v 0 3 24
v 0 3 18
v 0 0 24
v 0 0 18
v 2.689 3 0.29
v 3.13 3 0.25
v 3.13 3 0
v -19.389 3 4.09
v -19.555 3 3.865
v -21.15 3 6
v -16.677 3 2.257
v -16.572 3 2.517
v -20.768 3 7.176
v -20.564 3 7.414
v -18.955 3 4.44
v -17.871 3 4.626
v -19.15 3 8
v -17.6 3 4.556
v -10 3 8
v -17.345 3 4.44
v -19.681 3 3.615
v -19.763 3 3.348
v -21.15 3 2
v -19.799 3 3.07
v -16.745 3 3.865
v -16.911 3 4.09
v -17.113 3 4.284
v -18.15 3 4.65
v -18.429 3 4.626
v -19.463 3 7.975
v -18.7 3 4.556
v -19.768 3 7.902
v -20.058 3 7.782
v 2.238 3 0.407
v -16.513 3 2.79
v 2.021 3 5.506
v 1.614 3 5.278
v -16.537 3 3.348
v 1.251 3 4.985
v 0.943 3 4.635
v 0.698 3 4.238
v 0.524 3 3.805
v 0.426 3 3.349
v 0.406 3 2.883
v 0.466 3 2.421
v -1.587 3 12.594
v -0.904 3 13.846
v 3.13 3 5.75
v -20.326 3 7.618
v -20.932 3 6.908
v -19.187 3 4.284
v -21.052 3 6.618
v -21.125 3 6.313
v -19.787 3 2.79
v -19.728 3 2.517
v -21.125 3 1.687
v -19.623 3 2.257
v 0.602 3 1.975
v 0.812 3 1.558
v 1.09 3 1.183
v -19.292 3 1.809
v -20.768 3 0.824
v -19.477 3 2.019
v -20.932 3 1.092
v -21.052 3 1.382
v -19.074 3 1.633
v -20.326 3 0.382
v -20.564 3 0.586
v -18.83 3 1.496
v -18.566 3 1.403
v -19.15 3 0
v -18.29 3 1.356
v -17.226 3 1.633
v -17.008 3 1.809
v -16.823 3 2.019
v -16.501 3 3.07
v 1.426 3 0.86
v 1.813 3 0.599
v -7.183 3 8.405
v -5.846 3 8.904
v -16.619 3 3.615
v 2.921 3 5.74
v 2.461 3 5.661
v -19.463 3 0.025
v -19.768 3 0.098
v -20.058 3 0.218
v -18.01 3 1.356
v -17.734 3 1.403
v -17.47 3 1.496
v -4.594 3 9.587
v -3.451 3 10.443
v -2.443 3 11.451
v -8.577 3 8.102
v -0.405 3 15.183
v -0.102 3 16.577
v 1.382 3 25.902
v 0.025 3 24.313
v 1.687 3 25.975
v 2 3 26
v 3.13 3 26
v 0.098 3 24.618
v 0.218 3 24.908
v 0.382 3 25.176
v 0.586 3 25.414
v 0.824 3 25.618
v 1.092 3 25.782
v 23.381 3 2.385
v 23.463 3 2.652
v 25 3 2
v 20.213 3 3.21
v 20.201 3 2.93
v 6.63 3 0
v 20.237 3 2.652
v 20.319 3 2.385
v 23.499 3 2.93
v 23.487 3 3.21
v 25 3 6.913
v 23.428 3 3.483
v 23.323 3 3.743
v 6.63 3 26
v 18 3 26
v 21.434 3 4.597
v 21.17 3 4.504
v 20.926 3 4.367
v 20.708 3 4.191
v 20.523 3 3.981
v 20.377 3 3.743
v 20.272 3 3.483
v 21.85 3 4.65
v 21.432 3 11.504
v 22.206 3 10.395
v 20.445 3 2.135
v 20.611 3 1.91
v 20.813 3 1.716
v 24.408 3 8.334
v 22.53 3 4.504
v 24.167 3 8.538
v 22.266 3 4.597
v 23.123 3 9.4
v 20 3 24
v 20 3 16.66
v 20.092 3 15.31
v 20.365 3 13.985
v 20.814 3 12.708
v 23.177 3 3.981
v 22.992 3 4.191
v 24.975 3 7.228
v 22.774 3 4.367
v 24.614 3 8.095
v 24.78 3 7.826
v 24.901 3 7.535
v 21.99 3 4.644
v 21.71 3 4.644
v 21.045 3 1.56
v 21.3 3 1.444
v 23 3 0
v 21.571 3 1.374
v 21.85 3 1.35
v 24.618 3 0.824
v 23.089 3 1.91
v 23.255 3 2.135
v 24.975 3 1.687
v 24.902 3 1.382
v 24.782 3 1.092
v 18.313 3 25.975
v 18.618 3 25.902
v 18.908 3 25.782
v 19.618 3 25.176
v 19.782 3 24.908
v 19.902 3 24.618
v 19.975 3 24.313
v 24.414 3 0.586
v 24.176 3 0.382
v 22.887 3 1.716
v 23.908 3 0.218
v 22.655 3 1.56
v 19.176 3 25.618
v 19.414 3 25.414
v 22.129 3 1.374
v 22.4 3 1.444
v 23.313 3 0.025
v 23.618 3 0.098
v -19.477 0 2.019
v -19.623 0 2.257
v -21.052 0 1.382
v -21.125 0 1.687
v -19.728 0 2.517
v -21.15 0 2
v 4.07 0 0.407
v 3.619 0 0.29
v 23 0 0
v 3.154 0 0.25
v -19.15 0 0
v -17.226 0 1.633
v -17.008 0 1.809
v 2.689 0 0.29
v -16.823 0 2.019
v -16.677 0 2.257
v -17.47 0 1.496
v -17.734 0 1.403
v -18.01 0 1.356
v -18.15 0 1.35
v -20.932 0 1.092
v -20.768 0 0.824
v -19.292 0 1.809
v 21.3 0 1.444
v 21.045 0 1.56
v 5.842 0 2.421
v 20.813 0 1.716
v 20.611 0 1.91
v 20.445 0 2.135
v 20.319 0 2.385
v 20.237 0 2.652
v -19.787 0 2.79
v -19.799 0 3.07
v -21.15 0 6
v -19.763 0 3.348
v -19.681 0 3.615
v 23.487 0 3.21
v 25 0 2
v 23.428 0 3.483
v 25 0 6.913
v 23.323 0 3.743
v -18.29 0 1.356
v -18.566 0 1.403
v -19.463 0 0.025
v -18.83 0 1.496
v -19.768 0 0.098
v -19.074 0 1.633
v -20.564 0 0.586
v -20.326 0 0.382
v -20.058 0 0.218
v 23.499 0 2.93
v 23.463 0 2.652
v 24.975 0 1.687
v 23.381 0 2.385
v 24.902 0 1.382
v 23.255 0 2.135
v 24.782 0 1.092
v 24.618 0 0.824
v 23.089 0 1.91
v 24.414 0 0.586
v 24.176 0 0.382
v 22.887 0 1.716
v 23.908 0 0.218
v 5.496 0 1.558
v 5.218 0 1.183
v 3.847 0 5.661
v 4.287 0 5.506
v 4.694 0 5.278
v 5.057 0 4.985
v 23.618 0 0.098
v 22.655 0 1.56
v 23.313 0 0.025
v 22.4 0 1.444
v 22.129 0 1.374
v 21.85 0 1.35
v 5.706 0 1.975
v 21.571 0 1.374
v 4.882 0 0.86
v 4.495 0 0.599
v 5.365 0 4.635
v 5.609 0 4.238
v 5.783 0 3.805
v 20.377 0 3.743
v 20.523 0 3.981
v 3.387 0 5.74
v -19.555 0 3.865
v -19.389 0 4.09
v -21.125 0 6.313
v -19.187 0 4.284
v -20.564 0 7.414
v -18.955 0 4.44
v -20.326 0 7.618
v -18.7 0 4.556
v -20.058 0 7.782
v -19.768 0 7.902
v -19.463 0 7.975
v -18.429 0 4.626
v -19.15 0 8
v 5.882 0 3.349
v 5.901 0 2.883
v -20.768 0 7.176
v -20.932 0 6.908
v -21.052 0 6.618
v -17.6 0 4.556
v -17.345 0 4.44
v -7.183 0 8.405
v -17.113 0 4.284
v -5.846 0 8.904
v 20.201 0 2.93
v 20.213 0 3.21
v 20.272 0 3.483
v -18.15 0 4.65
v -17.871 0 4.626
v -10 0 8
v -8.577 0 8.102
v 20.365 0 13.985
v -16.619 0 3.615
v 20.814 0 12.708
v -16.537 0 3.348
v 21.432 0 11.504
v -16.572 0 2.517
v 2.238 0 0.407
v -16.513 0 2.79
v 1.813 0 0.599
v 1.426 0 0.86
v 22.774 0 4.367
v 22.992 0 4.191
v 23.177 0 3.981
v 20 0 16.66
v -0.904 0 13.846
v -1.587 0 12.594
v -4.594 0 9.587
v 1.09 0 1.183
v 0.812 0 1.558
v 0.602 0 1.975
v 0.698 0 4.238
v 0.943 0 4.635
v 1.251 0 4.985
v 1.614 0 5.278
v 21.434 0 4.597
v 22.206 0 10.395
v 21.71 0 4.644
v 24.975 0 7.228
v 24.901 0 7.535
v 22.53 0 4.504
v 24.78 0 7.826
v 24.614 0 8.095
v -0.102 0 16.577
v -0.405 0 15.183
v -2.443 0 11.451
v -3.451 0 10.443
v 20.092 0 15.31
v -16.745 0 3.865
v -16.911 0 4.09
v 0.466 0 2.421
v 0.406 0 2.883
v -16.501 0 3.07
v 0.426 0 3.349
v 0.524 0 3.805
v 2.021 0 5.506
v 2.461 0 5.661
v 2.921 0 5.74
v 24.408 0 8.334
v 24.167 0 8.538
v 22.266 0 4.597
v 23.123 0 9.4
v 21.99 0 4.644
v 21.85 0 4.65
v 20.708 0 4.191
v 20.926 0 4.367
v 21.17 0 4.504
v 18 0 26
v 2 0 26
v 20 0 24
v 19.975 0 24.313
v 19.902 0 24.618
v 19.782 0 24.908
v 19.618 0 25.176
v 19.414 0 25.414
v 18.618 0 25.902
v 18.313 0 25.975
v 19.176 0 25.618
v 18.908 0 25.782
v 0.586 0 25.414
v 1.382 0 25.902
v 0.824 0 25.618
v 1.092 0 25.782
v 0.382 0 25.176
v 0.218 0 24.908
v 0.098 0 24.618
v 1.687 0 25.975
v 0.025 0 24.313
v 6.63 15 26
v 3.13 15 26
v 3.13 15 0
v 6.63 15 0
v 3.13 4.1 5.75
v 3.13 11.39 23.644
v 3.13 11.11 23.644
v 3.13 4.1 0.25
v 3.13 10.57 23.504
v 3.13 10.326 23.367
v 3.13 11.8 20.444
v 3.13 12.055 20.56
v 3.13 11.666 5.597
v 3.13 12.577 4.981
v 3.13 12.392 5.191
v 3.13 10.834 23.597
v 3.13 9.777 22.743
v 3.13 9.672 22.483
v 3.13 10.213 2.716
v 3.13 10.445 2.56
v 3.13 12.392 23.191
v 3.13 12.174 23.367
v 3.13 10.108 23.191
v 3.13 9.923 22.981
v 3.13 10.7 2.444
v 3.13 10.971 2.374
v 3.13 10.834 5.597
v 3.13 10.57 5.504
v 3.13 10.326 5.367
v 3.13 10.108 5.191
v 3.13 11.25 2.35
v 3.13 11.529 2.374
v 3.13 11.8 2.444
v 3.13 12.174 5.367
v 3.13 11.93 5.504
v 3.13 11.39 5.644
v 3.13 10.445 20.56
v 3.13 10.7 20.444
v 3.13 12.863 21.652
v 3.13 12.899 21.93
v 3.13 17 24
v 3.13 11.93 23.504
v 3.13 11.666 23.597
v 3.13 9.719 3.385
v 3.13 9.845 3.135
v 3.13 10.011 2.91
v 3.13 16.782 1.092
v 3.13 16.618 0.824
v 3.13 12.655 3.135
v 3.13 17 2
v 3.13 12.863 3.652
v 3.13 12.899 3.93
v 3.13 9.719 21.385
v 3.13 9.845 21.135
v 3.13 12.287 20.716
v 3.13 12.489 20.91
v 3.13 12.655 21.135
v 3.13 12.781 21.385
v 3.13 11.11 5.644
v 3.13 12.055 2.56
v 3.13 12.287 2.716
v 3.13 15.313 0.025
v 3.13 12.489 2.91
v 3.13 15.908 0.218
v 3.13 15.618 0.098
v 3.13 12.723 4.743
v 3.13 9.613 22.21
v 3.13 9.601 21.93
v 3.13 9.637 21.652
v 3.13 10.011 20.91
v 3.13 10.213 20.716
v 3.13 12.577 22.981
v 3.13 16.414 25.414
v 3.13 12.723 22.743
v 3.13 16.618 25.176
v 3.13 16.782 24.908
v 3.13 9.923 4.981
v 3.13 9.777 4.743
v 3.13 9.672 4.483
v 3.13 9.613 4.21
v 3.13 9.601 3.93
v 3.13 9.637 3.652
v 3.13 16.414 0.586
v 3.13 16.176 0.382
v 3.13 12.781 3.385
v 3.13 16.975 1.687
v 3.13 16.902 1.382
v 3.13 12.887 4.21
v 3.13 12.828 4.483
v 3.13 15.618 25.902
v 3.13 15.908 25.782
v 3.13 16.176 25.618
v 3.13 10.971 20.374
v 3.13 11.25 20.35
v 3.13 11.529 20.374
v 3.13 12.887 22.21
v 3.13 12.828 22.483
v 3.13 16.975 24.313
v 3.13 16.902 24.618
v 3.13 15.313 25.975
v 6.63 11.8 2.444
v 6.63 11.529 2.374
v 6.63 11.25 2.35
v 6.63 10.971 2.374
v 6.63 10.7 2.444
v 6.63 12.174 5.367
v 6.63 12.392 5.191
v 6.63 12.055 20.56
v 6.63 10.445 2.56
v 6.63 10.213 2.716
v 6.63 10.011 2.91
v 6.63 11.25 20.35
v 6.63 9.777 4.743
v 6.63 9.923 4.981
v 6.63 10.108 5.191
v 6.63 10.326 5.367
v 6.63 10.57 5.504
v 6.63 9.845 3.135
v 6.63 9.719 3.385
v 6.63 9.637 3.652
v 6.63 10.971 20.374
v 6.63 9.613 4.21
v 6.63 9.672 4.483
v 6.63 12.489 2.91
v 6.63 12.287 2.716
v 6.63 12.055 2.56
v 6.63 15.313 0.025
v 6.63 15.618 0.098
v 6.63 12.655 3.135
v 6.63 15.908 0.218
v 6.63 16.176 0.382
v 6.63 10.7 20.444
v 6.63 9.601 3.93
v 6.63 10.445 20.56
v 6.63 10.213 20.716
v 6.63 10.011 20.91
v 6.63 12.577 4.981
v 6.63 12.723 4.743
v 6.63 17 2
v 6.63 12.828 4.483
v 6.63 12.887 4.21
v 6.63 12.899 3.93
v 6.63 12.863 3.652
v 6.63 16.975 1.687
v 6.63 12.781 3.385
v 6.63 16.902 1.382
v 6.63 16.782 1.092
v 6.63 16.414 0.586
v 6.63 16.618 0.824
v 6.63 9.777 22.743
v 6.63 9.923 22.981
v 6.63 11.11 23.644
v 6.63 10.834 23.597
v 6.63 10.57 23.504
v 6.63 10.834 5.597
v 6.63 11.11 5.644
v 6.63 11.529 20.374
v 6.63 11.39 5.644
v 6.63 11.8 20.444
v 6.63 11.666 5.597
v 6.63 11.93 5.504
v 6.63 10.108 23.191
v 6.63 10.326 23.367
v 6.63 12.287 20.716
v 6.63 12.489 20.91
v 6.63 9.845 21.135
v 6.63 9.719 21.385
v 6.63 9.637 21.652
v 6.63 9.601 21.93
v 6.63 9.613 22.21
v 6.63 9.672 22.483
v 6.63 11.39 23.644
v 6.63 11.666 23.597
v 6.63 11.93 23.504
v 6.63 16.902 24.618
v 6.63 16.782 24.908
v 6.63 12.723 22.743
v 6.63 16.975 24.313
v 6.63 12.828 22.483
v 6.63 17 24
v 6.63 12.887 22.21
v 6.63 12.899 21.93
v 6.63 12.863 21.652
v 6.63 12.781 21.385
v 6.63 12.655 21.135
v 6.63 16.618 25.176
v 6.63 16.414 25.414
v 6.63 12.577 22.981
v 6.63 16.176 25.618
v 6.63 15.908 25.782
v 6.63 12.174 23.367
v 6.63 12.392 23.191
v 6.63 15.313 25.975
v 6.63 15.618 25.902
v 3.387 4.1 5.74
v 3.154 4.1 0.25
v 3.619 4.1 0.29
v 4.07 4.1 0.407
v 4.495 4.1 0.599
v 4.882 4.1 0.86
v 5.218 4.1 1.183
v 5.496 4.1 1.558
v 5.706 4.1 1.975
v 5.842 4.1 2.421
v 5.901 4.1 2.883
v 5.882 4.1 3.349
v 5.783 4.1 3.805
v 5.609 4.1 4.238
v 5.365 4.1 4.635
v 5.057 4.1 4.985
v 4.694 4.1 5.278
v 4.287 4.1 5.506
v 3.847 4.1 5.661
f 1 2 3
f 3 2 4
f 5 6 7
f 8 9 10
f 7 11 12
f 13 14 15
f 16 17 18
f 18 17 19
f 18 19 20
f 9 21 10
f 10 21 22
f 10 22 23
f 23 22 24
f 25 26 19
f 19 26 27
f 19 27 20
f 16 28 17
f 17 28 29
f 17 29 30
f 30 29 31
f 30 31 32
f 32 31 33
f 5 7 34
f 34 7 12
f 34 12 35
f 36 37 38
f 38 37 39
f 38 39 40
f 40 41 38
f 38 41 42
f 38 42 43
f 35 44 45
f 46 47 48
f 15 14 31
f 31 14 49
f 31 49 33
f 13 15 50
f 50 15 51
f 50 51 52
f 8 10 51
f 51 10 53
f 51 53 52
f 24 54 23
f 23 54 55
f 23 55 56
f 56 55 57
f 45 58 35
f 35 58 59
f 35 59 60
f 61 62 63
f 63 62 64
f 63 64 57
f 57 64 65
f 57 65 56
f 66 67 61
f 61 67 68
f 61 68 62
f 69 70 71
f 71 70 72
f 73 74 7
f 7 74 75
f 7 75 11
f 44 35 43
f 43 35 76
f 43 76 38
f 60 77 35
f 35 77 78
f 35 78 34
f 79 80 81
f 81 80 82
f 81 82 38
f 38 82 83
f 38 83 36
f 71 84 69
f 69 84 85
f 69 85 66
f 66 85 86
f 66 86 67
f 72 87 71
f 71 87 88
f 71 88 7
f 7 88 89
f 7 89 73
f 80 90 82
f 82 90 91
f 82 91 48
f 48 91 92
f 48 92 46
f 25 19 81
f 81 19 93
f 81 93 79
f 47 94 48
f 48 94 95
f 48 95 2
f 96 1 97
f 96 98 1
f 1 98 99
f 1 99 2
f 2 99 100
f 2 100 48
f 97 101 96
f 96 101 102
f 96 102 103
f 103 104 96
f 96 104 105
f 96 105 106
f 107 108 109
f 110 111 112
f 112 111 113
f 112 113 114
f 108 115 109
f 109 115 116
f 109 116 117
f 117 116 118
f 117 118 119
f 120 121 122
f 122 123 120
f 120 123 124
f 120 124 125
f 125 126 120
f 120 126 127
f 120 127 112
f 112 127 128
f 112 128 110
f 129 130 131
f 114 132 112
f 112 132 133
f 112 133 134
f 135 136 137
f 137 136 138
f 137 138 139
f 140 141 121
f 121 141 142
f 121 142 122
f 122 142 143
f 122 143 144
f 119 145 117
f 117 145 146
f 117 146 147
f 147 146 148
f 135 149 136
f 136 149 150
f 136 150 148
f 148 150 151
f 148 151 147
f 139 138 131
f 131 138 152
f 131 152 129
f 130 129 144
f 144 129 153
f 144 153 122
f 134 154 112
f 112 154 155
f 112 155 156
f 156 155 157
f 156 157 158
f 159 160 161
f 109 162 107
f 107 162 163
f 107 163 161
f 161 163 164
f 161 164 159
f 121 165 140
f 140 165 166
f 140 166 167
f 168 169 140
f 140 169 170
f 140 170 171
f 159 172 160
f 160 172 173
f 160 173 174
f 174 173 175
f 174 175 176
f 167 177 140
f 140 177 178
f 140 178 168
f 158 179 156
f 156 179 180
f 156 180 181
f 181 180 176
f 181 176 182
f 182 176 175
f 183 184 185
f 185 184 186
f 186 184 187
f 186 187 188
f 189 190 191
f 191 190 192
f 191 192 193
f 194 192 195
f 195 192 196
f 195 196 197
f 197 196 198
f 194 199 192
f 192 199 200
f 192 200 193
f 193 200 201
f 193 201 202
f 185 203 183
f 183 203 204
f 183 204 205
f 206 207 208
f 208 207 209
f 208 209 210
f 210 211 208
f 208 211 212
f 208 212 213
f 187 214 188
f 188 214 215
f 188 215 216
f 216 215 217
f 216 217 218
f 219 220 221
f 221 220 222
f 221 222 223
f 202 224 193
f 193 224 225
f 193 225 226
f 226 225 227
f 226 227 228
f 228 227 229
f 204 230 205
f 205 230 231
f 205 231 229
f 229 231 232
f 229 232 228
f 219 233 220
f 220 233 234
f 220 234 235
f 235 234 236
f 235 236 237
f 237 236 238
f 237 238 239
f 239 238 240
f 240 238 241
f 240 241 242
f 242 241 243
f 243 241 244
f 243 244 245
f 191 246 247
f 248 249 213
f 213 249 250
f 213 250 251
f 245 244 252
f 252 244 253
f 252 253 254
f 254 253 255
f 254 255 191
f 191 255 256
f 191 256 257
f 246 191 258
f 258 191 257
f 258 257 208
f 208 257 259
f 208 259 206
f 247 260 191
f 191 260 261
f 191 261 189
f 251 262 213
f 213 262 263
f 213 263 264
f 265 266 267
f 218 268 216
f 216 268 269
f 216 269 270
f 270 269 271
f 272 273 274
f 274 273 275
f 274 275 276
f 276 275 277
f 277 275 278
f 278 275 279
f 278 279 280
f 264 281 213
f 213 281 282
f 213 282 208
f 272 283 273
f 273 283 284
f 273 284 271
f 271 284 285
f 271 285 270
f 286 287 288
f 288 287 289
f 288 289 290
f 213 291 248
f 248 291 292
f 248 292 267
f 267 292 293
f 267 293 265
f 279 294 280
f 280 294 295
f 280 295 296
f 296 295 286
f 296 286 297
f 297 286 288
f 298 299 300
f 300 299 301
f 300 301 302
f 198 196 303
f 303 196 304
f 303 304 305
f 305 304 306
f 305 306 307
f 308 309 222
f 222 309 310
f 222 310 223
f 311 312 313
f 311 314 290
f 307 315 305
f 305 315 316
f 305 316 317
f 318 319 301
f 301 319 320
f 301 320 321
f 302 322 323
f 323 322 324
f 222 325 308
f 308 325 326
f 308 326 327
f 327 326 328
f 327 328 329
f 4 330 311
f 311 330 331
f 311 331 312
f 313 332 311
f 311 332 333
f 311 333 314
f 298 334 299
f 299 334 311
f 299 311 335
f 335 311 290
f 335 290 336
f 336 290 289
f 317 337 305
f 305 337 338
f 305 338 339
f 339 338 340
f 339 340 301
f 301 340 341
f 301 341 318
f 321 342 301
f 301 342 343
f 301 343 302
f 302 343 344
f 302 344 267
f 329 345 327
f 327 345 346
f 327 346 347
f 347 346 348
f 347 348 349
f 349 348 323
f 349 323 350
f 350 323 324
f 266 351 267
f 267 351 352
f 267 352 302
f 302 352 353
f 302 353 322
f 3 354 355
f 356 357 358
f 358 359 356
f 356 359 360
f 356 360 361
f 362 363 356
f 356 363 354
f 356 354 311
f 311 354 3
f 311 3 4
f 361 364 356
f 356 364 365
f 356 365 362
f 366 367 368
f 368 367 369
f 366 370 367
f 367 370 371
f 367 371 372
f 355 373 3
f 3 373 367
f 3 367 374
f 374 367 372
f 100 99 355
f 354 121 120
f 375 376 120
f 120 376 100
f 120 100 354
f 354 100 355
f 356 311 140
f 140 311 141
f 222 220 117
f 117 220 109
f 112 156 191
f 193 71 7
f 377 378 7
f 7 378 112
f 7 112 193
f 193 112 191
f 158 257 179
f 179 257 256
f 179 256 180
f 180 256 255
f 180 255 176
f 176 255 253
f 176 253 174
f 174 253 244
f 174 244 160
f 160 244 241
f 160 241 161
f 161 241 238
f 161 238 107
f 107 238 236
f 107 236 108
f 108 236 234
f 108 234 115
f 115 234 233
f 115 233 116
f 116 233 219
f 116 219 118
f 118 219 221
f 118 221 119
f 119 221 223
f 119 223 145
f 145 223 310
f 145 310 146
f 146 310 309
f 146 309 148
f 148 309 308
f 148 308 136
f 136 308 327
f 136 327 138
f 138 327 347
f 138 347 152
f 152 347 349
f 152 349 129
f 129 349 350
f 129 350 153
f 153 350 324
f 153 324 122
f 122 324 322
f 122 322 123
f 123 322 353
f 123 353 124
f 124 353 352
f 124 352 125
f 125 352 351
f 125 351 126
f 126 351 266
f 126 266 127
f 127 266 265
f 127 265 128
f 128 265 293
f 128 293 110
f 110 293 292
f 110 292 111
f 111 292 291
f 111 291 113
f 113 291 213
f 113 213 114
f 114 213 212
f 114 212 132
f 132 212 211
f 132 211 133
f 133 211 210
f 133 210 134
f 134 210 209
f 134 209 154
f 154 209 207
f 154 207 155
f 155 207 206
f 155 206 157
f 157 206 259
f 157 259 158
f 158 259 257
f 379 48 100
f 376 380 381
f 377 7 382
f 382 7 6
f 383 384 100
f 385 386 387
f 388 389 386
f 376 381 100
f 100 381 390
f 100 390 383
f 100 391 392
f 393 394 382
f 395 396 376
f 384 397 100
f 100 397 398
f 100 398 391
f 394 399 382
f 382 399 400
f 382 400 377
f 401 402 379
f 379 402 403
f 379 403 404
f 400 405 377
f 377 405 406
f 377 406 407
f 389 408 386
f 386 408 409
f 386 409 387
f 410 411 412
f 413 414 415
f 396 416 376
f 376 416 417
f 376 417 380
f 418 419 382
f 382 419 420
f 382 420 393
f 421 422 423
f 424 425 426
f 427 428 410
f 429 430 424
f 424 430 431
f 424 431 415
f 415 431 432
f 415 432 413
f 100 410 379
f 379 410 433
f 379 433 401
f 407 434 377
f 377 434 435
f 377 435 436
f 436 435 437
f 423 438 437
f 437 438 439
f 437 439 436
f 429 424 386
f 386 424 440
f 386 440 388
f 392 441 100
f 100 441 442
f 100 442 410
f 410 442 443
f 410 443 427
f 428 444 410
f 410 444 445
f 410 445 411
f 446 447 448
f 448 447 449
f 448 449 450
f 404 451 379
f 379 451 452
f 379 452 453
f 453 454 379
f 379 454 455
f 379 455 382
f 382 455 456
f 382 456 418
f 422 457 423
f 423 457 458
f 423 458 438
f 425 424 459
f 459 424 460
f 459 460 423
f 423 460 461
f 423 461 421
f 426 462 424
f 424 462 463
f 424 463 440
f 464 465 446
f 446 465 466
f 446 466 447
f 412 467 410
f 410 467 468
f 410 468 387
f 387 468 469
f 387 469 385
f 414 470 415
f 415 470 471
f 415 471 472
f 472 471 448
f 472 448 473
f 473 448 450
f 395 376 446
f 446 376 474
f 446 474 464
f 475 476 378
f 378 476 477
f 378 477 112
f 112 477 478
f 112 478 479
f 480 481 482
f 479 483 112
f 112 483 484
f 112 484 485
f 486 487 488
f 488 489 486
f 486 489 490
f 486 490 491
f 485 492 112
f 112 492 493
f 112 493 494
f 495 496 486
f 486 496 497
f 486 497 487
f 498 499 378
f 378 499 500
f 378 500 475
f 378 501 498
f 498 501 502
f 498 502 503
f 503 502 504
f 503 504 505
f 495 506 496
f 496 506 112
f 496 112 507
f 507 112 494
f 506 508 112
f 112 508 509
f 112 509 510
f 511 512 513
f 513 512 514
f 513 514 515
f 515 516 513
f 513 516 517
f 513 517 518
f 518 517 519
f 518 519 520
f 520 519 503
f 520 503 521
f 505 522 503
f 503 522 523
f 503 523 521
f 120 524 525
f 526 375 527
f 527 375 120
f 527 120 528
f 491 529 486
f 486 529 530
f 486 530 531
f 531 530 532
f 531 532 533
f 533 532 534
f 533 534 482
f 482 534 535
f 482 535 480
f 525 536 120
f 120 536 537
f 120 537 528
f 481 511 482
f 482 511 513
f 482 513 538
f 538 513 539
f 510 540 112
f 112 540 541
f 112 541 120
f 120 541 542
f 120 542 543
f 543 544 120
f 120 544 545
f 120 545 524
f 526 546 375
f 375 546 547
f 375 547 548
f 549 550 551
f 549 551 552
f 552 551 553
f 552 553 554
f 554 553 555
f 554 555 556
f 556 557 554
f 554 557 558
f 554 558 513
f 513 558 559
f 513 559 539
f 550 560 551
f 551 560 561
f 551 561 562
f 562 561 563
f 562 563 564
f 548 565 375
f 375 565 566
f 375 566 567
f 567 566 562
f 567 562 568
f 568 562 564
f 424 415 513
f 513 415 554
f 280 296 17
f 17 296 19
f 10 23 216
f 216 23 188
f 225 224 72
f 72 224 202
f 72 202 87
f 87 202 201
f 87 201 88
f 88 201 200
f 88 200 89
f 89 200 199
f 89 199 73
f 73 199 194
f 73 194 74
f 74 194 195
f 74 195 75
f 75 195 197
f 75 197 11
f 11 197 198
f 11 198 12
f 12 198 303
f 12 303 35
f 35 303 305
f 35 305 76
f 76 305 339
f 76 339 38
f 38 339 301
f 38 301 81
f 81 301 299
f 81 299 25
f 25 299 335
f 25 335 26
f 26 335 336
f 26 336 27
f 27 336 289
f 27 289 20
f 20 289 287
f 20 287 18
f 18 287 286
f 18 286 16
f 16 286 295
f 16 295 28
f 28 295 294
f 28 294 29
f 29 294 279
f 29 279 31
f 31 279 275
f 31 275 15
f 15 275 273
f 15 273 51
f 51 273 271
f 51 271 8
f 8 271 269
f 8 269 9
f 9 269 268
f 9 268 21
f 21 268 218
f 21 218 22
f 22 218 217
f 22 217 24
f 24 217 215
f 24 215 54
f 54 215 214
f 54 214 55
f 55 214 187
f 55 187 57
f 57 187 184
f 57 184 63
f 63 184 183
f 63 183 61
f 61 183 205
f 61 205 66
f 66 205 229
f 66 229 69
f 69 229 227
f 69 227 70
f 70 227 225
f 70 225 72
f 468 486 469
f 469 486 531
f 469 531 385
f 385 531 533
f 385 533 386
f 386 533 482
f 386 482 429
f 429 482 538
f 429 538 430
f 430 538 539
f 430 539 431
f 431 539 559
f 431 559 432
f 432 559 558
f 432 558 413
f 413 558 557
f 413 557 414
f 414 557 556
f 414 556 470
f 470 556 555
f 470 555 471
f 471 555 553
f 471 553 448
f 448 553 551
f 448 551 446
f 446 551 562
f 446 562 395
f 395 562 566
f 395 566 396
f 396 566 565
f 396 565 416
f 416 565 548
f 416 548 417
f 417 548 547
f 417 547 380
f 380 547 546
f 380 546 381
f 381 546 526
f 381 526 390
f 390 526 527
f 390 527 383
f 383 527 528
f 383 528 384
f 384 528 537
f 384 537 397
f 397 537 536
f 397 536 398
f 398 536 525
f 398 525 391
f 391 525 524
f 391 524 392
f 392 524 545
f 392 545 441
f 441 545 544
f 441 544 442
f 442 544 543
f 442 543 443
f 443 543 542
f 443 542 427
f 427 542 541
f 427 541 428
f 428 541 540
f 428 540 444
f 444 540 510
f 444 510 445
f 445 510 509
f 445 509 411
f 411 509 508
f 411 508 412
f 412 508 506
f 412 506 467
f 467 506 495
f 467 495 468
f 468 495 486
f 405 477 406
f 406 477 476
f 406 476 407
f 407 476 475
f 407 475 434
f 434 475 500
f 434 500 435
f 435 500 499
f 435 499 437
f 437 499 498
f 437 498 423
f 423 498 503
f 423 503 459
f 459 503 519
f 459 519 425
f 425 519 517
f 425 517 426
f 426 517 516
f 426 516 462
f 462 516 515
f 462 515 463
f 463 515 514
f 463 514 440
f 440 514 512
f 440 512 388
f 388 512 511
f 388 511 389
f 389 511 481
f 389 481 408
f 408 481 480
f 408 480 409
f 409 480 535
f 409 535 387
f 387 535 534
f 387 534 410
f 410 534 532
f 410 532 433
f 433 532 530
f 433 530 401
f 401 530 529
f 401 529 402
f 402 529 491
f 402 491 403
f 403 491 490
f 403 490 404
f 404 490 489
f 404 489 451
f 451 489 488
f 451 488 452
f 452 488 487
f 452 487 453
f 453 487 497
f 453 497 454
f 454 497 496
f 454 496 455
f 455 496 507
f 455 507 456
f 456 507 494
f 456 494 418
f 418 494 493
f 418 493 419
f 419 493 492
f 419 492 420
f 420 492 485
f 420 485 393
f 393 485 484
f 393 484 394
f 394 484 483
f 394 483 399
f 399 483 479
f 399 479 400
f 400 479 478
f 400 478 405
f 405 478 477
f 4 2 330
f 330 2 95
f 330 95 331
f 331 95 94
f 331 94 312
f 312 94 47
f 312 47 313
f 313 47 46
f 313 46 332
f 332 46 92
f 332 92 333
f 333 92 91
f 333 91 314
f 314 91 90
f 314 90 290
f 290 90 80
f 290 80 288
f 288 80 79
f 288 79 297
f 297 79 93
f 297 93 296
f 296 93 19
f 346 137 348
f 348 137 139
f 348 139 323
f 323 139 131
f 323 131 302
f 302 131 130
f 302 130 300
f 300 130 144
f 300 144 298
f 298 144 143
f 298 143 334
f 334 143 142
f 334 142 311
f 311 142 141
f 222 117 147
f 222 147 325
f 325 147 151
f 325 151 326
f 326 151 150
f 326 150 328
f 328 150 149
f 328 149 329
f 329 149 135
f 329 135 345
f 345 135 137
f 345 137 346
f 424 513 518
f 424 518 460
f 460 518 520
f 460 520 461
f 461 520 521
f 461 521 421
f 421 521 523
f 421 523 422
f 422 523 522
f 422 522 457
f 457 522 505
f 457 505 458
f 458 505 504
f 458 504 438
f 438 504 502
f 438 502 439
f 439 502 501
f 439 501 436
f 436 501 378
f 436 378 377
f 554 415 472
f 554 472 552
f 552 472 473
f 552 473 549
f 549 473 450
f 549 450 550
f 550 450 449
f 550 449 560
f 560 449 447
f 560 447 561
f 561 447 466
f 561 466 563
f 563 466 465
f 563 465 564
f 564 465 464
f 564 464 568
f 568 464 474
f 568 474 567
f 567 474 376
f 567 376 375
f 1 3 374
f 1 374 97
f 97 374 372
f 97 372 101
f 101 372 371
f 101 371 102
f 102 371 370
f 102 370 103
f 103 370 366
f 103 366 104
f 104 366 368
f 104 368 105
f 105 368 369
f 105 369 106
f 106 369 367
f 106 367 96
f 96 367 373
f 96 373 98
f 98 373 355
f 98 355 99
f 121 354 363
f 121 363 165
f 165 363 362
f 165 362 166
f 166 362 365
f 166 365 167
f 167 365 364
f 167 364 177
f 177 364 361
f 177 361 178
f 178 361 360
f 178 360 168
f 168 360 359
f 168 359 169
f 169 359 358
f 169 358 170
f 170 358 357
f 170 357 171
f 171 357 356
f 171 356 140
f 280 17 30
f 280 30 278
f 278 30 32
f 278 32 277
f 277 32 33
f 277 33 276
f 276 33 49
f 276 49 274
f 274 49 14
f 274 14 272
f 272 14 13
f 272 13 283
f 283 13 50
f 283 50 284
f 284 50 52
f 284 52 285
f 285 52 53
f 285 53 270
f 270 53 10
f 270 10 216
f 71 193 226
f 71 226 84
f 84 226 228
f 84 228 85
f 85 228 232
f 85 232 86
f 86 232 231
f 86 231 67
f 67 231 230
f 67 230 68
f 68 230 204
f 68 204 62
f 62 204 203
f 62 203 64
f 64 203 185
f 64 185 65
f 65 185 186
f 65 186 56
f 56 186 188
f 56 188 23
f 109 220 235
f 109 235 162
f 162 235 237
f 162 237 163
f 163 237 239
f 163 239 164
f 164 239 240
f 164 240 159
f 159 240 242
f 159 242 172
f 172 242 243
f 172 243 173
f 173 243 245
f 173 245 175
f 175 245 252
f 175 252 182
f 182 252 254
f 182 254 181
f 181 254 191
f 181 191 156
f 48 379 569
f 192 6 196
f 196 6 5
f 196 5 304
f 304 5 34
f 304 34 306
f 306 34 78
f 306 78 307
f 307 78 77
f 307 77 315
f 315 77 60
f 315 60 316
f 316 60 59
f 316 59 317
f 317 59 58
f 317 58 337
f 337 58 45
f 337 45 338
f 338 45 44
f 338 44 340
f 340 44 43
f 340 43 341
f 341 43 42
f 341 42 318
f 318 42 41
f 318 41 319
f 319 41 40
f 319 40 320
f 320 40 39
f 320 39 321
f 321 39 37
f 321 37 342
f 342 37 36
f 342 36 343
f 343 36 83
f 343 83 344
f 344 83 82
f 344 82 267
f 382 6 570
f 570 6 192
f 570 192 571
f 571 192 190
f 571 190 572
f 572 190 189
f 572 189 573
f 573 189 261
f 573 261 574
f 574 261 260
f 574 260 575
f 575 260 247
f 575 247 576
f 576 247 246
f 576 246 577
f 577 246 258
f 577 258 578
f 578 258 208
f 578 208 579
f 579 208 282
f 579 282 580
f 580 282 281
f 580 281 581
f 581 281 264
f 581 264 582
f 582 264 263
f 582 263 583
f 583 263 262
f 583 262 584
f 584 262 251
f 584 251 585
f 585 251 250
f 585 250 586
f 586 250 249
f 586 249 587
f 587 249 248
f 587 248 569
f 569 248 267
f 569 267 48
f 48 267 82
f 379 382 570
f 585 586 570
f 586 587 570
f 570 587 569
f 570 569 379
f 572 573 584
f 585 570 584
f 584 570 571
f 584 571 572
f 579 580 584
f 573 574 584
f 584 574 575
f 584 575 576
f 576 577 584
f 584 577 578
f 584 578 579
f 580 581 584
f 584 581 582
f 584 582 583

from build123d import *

# Parameters (mm, degrees)
SKETCH1_R           = 1.65
BOSS_EXTRUDE1_DEPTH = 3
SKETCH3_W           = 3.5
SKETCH3_H           = 26
BOSS_EXTRUDE2_DEPTH = 14
SKETCH5_W           = 21.15
SKETCH5_H           = 8
SKETCH5_R           = 1.65
BOSS_EXTRUDE4_DEPTH = 3
SKETCH6_R           = 1.65
CUT_EXTRUDE1_DEPTH  = 42.674073475
FILLET1_R           = 10
FILLET2_R           = 2
SKETCH7_R           = 2.75
CUT_EXTRUDE2_DEPTH  = 4.1


with BuildPart() as part:
    # Sketch1 → Boss-Extrude1 (new body)
    with BuildSketch(Plane(origin=(0, 0, 0), x_dir=(1, 0, 0), z_dir=(0, 1, 0))):
        Polygon((0, 0), (25, 0), (25, -8), (20, -8), (20, -26), (0, -26), align=None)
        with Locations(Location((21.85, -3, 0), (0, 0, 270))):
            Circle(SKETCH1_R, mode=Mode.SUBTRACT)
    extrude(amount=BOSS_EXTRUDE1_DEPTH)

    # Sketch3 → Boss-Extrude2 (add)
    with BuildSketch(Plane(origin=(0, 3, 0), x_dir=(1, 0, 0), z_dir=(0, 1, 0))):
        with Locations((4.88, -13)):
            Rectangle(SKETCH3_W, SKETCH3_H)
    extrude(amount=BOSS_EXTRUDE2_DEPTH)

    # Sketch5 → Boss-Extrude4 (add)
    with BuildSketch(Plane(origin=(0, 3, 0), x_dir=(1, 0, 0), z_dir=(0, 1, 0))):
        with Locations((-10.575, -4)):
            Rectangle(SKETCH5_W, SKETCH5_H)
        with Locations(Location((-18.15, -3, 0), (0, 0, 270))):
            Circle(SKETCH5_R, mode=Mode.SUBTRACT)
    extrude(amount=-BOSS_EXTRUDE4_DEPTH)

    # Sketch6 → Cut-Extrude1 (cut, through all)
    with BuildSketch(Plane(origin=(6.63, 0, 0), x_dir=(0, 0, -1), z_dir=(1, 0, 0))):
        with Locations((-4, 11.25)):
            Circle(SKETCH6_R)
        with Locations((-22, 11.25)):
            Circle(SKETCH6_R)
    extrude(amount=-CUT_EXTRUDE1_DEPTH, mode=Mode.SUBTRACT)

    # Fillet1
    # the kernel refuses this fillet: 10 mm, written as the material it adds along each edge
    with BuildSketch(Plane(origin=(20, 0, 8), x_dir=(0, 0, 1), z_dir=(0, 1, 0))) as fillet1_piece_1:
        with BuildLine():
            CenterArc((8.660254038, 10), FILLET1_R, 210, 60)
            Line((0, 5), (-0.173205081, 4.9))
            ThreePointArc((-0.173205081, 4.9), (-0.2, 2.5), (-0.2, 0))
            Line((-0.2, 0), (0, -0.2))
            Line((0, -0.2), (8.660254038, -0.2))
            Line((8.660254038, -0.2), (8.660254038, 0))
        make_face()
    extrude(amount=3)
    with BuildSketch(Plane(origin=(0, 3, 8), x_dir=(0, 0, 1), z_dir=(0, -1, 0))) as fillet1_piece_2:
        with BuildLine():
            CenterArc((FILLET1_R, FILLET1_R), FILLET1_R, 180, 90)
            Line((0, FILLET1_R), (-FILLET1_R * 0.02, FILLET1_R))
            Line((-FILLET1_R * 0.02, FILLET1_R), (-FILLET1_R * 0.02, -FILLET1_R * 0.02))
            Line((-FILLET1_R * 0.02, -FILLET1_R * 0.02), (FILLET1_R, -FILLET1_R * 0.02))
            Line((FILLET1_R, -FILLET1_R * 0.02), (FILLET1_R, 0))
        make_face()
    extrude(amount=3)

    # Fillet2
    fillet2_edges = [part.edges().sort_by_distance(p)[0] for p in [
        (25, 1.5, 0),
        (25, 1.5, 8),
        (20, 1.5, 26),
        (0, 1.5, 26),
        (4.88, 17, 26),
        (4.88, 17, 0),
        (-21.15, 1.5, 8),
        (-21.15, 1.5, 0),
    ]]
    fillet(fillet2_edges, radius=FILLET2_R)

    # Sketch7 → Cut-Extrude2 (cut)
    with BuildSketch(Plane.XZ):
        with Locations(Location((3.153923281, 3, 0), (0, 0, 270))):
            Circle(SKETCH7_R)
    extrude(amount=-CUT_EXTRUDE2_DEPTH, mode=Mode.SUBTRACT)


solid = part.part
